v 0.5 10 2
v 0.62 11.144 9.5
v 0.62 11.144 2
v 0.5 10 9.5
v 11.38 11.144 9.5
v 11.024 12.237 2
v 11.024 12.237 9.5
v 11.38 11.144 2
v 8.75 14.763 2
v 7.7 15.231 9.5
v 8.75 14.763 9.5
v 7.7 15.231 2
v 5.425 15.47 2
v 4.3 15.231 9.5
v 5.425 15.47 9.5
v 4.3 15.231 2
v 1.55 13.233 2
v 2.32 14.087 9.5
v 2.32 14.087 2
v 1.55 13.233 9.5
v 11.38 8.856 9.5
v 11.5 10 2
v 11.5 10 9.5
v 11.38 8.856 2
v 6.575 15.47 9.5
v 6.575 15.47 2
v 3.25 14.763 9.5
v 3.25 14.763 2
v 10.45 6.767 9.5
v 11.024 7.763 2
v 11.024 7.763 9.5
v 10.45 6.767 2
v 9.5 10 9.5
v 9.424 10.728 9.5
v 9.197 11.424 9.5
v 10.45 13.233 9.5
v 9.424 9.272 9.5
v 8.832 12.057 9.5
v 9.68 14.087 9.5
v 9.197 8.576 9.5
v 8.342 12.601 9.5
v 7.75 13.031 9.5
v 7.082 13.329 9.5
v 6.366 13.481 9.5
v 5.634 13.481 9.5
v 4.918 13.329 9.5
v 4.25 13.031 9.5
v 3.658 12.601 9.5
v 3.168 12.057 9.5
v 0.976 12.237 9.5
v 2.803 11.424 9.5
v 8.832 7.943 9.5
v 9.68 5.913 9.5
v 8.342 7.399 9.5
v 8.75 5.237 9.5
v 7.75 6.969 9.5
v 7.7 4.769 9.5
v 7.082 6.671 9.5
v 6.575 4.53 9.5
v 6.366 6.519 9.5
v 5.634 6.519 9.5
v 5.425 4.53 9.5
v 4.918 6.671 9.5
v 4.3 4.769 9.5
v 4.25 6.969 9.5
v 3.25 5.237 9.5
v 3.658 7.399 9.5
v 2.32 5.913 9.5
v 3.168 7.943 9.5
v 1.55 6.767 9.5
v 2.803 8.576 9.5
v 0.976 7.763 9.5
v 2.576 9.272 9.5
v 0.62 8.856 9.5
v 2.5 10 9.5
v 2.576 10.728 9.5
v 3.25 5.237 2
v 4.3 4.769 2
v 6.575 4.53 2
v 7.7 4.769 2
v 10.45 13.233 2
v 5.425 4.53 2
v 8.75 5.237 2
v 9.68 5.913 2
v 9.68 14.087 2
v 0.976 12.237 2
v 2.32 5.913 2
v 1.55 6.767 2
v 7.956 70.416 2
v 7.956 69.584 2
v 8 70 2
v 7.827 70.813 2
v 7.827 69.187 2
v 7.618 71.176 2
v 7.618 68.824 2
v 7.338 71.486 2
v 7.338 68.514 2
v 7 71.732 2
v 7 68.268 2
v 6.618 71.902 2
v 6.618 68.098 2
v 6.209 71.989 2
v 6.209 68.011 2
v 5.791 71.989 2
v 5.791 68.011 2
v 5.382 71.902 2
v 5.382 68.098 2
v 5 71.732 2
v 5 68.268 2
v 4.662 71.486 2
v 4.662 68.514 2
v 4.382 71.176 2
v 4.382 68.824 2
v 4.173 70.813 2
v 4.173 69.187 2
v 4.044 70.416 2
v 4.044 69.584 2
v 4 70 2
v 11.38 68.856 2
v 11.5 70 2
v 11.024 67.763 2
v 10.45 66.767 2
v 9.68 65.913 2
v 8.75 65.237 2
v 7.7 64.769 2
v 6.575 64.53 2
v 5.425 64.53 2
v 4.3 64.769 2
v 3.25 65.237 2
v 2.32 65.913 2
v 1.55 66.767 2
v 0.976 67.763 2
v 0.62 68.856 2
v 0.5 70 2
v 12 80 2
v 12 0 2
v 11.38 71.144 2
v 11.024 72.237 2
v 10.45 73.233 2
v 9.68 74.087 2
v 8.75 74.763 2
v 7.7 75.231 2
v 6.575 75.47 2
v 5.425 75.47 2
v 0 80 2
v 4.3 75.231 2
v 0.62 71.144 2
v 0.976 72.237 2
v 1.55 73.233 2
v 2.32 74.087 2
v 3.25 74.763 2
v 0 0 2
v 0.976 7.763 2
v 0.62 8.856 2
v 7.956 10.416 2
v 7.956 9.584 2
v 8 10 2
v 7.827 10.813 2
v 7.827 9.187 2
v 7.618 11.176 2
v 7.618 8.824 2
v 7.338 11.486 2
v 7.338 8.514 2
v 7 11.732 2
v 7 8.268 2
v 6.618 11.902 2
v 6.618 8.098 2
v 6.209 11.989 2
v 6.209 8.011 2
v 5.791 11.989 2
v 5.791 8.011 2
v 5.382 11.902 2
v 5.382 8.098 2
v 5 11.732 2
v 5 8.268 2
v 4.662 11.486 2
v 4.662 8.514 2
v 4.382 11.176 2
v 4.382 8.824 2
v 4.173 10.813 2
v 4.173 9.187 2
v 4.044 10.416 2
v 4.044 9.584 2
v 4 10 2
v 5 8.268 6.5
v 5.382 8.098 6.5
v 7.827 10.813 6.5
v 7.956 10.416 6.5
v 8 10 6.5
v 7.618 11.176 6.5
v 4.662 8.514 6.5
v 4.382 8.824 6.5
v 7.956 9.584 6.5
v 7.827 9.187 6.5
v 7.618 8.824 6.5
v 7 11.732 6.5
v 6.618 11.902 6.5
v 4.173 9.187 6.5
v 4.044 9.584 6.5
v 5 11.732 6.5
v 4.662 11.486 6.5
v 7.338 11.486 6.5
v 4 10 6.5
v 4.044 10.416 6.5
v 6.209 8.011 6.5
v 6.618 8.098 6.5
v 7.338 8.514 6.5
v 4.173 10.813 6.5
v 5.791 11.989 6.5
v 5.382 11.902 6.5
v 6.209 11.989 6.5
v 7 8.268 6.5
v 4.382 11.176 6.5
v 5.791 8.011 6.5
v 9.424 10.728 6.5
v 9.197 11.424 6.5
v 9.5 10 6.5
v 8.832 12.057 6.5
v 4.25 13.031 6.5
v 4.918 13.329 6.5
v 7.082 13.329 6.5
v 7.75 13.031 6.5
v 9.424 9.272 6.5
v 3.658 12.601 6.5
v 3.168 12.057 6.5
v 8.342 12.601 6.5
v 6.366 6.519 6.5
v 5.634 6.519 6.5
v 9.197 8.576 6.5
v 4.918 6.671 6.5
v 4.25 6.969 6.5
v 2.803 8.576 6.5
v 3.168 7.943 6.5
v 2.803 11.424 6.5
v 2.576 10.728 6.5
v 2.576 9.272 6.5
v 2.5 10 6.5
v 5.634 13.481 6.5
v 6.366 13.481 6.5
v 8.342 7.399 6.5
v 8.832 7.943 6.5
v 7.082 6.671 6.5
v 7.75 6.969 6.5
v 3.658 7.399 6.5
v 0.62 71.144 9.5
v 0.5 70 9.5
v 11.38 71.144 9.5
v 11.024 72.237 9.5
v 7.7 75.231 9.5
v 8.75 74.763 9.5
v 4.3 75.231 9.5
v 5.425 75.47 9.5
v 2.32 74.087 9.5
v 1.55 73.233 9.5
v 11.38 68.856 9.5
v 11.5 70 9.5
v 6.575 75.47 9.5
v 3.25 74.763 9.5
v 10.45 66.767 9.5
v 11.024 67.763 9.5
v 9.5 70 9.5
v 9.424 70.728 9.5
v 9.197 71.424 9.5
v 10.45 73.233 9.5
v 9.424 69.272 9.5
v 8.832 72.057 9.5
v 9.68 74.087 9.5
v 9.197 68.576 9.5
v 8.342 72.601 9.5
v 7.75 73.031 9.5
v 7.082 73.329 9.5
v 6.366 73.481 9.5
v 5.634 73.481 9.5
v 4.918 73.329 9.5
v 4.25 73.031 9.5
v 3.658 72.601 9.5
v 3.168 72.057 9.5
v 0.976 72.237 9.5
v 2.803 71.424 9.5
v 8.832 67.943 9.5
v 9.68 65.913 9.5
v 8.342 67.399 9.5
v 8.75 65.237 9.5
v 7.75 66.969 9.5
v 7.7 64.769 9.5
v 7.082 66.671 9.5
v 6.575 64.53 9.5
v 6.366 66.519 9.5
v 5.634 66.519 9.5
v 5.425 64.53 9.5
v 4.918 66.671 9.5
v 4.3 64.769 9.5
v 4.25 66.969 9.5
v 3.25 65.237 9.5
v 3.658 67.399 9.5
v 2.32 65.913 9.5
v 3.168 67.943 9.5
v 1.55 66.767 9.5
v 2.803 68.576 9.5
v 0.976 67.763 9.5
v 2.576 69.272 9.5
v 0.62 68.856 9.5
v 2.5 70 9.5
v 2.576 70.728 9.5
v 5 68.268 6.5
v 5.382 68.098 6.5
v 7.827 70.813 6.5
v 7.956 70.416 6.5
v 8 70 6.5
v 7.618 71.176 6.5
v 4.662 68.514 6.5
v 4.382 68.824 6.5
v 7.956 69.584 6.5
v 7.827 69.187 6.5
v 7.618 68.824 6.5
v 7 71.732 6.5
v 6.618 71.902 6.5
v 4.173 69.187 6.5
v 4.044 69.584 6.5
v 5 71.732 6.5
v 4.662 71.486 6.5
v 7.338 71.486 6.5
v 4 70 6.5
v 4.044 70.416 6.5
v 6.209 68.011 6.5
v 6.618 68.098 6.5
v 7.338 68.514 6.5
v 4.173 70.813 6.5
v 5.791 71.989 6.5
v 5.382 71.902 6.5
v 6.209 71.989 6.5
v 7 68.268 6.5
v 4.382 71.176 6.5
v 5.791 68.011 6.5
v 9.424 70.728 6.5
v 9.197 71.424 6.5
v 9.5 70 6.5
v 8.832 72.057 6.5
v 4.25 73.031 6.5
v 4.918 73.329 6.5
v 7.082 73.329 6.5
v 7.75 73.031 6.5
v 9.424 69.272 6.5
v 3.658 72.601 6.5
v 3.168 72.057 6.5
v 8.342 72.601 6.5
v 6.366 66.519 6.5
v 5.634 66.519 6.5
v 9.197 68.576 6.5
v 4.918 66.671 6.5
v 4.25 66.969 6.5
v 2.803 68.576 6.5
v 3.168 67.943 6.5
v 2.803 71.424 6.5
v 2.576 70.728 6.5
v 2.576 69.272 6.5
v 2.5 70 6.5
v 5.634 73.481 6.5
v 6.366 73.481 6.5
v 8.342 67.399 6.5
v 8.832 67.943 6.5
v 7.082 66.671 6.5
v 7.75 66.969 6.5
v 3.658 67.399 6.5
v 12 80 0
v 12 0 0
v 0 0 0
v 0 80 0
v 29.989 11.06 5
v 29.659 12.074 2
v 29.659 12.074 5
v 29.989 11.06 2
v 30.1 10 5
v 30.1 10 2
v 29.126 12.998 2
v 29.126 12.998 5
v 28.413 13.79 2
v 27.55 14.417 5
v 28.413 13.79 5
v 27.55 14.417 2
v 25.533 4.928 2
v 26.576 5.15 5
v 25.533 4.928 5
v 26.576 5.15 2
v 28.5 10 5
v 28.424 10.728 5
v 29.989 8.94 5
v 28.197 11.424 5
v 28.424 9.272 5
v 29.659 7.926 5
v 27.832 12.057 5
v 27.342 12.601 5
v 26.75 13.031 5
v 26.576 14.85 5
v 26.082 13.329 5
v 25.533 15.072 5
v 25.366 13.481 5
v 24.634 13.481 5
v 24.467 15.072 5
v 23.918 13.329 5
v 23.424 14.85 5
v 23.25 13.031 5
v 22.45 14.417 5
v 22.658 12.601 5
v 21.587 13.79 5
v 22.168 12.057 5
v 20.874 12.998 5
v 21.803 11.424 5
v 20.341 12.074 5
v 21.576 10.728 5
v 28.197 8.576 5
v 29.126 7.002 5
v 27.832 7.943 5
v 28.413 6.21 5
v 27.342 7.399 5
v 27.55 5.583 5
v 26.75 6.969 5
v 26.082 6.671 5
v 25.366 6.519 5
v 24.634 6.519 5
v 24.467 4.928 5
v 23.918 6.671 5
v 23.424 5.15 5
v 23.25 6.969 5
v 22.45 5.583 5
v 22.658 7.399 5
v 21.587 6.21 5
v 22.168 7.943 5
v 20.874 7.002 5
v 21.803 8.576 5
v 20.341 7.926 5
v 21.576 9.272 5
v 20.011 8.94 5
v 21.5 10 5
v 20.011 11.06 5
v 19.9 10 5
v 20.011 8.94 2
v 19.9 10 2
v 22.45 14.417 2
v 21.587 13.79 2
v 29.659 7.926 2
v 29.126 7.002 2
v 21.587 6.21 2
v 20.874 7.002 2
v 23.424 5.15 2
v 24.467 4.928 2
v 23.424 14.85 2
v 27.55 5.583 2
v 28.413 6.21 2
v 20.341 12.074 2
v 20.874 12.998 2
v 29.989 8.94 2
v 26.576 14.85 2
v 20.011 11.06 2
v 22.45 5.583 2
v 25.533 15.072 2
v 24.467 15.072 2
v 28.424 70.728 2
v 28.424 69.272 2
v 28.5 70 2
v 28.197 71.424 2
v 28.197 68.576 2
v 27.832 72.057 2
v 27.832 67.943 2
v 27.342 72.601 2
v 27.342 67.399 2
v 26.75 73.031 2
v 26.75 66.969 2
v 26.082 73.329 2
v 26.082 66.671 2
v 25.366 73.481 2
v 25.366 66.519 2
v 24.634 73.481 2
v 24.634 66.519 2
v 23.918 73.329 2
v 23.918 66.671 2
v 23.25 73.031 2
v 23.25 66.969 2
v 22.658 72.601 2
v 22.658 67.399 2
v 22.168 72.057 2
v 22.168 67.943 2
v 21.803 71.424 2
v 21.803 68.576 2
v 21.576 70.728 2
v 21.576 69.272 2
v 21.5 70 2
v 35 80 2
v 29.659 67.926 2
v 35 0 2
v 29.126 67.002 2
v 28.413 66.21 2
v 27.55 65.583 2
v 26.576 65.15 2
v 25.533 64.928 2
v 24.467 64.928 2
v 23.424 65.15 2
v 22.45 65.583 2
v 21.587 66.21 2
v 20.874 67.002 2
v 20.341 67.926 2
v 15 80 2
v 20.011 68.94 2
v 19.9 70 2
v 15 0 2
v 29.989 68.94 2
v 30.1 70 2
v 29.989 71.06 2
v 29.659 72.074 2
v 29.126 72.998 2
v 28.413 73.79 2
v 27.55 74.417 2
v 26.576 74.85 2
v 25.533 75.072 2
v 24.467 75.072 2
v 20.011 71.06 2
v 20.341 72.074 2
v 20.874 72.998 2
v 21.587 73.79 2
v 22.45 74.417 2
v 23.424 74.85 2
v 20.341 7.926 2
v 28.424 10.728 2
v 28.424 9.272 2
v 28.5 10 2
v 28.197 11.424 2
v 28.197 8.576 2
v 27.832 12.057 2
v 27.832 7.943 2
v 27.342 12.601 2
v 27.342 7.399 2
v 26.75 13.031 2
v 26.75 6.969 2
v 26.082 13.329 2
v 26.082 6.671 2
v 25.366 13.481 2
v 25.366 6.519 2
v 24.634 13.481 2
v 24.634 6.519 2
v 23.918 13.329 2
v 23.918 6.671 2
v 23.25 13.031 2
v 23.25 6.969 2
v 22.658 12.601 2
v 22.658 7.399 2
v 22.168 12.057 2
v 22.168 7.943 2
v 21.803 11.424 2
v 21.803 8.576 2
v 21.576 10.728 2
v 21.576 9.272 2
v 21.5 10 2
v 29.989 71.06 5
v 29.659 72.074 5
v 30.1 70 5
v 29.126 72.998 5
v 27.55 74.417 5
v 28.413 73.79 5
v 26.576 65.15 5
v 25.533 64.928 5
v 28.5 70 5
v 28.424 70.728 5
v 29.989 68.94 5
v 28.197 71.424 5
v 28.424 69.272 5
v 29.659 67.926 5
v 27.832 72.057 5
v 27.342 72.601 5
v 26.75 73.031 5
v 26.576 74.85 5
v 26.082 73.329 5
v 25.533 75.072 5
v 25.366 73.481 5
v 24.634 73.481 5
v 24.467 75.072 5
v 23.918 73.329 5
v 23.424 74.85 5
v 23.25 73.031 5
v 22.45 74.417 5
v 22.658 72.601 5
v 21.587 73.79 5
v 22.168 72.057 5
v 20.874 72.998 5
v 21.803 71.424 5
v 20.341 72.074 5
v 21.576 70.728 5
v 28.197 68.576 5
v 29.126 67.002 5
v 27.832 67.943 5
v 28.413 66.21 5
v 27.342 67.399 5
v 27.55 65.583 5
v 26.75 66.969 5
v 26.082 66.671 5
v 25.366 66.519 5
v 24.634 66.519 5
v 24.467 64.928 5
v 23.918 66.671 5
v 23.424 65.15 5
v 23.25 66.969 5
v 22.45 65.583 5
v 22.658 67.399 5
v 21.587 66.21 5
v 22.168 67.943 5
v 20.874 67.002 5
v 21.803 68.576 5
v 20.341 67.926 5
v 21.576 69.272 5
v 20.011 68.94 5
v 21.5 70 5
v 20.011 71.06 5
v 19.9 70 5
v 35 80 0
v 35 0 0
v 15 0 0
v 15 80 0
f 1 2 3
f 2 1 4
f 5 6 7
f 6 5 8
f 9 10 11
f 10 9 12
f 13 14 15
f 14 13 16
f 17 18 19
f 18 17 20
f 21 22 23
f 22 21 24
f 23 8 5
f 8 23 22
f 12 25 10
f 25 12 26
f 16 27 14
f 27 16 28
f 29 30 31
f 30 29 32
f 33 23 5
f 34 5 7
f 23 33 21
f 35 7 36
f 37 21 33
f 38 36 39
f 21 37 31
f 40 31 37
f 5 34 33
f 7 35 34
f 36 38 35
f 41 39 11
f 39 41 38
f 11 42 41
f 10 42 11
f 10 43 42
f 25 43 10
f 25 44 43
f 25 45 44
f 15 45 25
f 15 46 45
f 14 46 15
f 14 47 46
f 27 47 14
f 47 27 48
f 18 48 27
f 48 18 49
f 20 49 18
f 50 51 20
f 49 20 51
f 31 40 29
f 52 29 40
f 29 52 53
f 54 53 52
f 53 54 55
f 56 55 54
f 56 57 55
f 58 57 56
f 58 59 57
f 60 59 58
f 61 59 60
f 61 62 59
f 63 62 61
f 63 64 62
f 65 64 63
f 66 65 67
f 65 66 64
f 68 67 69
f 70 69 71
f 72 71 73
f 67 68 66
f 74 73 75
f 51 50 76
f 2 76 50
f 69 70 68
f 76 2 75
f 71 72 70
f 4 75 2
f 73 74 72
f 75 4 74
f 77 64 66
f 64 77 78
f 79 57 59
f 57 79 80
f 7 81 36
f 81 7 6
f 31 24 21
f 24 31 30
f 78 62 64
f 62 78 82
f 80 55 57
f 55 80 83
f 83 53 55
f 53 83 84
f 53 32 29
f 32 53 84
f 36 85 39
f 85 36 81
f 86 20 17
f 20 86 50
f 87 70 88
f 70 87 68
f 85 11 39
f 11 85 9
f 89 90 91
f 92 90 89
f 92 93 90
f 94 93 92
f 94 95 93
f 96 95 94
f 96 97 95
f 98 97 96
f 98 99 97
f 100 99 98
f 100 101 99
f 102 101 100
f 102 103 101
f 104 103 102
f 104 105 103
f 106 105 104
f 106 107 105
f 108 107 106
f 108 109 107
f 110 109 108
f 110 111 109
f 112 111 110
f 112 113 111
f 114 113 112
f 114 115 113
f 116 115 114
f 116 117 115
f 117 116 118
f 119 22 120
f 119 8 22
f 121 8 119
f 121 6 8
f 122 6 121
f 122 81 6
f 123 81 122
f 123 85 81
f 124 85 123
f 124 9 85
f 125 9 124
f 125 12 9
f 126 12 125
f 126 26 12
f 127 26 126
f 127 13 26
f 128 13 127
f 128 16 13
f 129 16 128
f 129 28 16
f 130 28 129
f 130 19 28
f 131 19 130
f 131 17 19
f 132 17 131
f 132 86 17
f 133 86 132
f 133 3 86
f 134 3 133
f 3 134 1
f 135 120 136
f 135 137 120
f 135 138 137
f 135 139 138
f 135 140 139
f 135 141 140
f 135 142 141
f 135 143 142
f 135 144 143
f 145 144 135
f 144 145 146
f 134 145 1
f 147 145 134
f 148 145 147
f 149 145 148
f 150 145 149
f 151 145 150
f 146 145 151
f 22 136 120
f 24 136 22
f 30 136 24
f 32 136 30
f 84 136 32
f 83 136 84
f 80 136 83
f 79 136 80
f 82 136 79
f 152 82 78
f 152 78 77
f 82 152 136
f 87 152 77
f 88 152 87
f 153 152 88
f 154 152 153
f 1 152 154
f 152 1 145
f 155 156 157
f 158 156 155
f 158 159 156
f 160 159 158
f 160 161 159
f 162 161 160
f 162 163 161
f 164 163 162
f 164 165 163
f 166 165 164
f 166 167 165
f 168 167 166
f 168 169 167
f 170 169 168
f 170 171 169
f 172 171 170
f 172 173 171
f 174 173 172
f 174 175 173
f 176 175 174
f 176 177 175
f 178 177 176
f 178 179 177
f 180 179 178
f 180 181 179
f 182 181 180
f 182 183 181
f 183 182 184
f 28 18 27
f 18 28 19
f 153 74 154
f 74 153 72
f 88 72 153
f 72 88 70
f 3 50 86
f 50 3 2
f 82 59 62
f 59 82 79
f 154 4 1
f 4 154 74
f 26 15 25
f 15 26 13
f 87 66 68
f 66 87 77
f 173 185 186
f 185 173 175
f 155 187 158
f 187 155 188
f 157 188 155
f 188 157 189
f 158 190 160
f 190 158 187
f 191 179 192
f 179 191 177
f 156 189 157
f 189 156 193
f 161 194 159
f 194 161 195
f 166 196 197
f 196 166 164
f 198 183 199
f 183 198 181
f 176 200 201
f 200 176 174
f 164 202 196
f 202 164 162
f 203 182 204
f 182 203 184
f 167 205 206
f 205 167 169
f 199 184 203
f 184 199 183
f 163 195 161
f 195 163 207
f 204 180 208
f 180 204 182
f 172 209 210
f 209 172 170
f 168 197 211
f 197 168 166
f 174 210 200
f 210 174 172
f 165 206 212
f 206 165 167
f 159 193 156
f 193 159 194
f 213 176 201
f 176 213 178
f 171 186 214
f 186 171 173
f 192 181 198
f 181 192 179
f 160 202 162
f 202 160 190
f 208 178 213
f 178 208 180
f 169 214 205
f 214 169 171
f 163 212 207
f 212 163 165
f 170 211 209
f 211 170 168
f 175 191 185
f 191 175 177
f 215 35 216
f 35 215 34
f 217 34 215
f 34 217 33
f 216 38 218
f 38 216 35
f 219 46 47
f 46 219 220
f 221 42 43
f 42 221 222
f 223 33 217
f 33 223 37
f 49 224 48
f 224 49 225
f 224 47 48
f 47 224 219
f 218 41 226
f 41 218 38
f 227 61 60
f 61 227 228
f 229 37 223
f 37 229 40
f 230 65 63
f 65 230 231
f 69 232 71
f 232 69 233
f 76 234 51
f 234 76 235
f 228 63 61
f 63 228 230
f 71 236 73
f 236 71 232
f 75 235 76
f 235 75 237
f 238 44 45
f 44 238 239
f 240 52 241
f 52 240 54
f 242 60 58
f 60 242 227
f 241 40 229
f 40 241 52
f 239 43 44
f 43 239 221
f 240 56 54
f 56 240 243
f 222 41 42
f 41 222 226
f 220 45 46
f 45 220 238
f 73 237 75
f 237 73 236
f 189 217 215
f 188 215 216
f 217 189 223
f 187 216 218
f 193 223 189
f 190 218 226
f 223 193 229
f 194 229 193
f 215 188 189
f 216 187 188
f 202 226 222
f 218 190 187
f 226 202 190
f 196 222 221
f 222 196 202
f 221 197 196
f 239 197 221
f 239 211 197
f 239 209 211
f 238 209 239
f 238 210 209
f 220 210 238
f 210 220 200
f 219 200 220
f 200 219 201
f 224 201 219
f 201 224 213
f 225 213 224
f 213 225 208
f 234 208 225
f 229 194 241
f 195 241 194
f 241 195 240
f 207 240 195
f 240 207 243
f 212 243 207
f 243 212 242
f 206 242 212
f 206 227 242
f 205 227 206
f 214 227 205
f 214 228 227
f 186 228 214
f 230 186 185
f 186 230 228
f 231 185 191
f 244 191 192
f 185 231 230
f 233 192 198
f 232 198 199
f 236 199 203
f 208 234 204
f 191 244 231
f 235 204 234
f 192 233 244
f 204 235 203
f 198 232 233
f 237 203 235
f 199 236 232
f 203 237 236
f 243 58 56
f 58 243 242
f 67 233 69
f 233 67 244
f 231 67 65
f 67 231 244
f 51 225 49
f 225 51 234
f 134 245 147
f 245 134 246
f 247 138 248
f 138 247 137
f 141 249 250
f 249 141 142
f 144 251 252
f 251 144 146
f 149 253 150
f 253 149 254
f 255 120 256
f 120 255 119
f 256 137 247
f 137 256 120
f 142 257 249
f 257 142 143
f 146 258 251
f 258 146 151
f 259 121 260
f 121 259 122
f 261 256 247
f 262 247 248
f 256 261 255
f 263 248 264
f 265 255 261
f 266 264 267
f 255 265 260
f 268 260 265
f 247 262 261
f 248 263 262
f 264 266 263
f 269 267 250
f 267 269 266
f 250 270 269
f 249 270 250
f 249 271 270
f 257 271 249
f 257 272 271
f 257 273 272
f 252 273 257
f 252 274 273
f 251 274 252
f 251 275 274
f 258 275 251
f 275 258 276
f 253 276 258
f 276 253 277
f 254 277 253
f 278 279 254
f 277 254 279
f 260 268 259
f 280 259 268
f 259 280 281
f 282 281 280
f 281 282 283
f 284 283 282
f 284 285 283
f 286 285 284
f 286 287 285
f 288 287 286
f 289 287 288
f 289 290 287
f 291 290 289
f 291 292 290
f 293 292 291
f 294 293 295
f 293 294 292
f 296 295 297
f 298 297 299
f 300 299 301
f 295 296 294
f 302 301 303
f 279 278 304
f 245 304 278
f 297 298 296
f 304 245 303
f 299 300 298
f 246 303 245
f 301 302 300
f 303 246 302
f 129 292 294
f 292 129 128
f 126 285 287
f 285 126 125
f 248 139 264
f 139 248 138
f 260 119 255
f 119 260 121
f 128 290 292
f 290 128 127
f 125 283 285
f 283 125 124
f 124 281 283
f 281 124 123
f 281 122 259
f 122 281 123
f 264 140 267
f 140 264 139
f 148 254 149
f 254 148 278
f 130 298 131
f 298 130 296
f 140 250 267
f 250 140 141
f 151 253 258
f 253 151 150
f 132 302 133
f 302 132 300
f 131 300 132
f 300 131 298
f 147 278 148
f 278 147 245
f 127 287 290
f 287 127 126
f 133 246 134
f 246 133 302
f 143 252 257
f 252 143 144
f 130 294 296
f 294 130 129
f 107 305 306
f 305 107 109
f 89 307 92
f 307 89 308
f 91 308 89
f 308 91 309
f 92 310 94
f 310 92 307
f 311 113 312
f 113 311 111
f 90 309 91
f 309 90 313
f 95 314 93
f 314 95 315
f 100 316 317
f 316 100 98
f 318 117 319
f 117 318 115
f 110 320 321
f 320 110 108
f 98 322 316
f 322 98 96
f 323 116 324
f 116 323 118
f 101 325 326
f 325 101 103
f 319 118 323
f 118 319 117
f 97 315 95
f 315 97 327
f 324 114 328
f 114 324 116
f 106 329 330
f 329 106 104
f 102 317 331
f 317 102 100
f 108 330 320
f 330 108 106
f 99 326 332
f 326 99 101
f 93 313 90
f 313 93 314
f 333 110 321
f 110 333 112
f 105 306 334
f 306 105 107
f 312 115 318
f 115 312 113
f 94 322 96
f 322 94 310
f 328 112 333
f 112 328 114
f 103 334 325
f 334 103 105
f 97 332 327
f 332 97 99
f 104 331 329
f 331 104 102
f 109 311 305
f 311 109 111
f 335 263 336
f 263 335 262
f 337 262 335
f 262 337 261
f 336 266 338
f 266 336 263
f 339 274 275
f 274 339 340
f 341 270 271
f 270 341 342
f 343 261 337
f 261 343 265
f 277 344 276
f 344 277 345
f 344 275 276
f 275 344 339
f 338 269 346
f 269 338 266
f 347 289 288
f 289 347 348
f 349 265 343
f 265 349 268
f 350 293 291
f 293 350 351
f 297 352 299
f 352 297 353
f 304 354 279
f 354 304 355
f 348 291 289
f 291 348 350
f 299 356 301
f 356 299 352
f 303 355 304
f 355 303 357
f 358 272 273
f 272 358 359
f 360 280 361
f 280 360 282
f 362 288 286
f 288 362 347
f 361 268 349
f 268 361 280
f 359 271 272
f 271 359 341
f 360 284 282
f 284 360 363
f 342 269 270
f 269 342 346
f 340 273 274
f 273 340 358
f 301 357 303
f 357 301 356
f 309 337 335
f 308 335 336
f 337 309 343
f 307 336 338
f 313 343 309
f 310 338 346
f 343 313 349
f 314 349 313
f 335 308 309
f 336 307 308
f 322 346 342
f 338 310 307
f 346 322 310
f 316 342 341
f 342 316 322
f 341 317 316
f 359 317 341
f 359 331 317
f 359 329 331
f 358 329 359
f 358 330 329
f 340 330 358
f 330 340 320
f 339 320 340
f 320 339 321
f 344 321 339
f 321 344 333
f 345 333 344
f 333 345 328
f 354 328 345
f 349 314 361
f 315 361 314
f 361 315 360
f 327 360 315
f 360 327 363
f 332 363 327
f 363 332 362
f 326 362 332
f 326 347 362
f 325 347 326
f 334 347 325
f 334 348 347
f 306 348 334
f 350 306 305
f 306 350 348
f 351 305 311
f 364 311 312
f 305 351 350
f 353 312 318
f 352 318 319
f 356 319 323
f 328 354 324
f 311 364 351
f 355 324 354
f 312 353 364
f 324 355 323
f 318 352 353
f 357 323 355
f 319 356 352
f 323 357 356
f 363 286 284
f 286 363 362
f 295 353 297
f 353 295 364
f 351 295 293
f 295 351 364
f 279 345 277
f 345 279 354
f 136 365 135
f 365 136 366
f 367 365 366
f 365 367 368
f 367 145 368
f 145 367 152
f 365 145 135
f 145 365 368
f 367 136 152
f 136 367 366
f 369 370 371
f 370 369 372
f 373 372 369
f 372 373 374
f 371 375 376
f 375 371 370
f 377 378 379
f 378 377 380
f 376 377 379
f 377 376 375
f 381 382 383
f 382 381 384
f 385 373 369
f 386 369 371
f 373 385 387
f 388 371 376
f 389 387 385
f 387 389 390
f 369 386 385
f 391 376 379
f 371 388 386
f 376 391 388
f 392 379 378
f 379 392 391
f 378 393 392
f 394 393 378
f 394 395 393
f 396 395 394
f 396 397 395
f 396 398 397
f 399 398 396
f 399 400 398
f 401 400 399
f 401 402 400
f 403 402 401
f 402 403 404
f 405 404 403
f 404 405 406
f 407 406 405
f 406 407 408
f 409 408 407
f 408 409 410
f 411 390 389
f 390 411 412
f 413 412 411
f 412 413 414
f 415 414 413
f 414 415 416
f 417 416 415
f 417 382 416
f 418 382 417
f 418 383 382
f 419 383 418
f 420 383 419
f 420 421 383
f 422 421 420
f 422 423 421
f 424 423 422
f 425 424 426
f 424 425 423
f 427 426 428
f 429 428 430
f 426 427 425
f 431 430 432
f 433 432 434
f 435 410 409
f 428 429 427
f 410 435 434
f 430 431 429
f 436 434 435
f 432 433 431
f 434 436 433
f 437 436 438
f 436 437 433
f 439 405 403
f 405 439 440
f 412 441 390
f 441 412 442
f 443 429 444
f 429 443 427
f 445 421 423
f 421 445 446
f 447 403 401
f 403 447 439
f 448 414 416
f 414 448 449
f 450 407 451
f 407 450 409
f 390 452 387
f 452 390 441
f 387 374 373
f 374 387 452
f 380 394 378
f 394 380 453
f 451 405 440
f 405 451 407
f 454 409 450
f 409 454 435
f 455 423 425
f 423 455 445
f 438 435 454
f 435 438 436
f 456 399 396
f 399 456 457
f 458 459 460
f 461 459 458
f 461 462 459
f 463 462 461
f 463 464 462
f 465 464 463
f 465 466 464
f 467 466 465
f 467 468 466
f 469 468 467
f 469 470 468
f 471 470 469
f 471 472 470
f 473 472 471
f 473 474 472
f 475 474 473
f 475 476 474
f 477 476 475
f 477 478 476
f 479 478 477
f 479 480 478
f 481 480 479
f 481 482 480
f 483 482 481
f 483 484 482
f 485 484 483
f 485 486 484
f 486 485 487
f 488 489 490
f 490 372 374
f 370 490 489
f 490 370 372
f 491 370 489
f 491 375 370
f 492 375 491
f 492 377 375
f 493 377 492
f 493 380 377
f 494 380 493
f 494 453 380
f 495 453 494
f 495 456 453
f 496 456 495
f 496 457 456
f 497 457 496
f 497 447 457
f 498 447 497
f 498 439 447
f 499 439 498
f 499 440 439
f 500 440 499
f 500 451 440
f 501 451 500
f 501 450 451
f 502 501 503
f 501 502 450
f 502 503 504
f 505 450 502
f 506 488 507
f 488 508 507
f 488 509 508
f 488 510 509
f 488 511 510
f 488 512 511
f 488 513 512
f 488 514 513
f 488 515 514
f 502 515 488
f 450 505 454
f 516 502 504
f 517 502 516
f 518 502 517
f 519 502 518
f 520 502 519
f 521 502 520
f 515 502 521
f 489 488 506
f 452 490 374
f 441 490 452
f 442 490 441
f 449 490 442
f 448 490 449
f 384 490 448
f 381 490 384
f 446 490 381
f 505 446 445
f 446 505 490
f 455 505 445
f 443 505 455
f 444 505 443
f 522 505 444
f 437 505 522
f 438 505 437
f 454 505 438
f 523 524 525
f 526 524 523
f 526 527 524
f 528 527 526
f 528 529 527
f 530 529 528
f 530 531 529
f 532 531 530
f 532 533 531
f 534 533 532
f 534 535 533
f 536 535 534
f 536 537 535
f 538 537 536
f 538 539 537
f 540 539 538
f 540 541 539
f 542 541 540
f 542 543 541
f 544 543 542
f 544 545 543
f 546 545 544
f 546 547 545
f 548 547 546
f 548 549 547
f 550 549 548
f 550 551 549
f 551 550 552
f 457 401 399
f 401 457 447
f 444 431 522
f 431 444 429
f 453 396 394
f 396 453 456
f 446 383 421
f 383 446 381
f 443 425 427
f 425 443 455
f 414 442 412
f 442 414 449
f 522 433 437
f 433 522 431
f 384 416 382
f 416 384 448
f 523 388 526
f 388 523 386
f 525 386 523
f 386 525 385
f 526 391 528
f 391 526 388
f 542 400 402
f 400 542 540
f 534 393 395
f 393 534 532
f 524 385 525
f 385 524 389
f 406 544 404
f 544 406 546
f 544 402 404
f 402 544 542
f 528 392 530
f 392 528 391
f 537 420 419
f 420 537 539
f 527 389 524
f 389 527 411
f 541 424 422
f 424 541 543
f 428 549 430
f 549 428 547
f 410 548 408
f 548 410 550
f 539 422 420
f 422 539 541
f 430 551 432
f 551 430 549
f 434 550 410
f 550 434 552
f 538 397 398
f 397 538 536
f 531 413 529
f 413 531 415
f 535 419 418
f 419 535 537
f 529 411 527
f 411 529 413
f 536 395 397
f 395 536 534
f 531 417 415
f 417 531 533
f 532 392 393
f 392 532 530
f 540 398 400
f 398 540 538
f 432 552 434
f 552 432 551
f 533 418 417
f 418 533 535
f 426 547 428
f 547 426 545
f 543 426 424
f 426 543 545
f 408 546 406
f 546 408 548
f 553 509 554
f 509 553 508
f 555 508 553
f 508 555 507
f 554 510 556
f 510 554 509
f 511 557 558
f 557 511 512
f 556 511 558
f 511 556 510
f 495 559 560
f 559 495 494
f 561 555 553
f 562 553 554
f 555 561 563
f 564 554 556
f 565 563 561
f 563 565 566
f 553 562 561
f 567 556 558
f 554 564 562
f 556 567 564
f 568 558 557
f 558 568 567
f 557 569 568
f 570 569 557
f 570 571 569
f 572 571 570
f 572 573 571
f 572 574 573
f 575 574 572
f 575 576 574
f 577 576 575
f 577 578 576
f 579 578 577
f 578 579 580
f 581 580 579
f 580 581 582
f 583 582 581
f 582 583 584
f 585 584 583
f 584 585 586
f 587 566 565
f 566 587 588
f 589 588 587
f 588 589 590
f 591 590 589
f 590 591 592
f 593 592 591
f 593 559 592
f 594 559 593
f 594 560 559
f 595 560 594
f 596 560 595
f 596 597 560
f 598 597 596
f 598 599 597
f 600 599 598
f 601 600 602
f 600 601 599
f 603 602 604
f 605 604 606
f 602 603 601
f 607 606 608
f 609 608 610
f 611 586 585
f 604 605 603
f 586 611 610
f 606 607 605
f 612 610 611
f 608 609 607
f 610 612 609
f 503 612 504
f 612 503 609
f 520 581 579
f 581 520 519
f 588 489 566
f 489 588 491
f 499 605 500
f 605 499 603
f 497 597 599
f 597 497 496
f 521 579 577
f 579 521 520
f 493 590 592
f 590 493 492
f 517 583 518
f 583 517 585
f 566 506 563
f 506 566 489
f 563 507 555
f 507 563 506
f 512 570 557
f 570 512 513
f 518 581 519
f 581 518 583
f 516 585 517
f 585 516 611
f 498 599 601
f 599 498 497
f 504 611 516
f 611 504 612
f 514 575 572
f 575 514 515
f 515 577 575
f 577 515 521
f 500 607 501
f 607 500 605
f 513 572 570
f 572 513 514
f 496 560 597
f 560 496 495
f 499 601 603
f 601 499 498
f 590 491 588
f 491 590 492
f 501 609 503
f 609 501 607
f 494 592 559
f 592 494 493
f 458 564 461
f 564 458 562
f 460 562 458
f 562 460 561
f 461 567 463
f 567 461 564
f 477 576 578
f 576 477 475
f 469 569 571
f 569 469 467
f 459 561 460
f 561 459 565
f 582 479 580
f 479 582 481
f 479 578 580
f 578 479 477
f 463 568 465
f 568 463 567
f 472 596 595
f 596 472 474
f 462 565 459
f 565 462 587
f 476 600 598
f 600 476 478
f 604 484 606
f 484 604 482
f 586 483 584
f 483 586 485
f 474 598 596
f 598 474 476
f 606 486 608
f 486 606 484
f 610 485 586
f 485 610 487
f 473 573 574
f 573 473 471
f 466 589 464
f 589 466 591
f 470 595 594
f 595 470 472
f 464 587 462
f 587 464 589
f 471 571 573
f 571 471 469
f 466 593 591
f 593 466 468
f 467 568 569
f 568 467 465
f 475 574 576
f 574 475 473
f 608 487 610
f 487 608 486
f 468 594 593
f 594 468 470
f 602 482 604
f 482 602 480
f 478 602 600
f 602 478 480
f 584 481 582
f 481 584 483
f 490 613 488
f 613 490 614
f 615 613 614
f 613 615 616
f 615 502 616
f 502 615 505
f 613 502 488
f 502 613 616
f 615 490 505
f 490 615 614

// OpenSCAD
$fn=30;

module adj_stand_top() {
    bolt_d = 4;
    bolt_h = 7;
    w = 12;
    d = 80;
    h = 2;
    h2 = 5 + 2.5;
    cube([w, d, h]);
    translate([w/2, 10, h]) {
        nut_cutout();
    }
    translate([w/2, d-10, h]) {
        nut_cutout();
    }
    module nut_cutout() {
        difference() {
            cylinder(h = h2, d = bolt_h+4);
            cylinder(h = h2+.1, d = bolt_d);
            translate([0, 0, h2-3])
                cylinder(h = 3+.1, d = bolt_h);
        }
    }
}

module adj_stand_base() {
    bolt_h = 7;
    w = 20;
    d = 80;
    h = 2;
    h2 = 3;
    cube([w, d, h]);
    translate([w/2, 10, h]) {
        socket();
    }
    translate([w/2, d-10, h]) {
        socket();
    }
    module socket() {
        difference() {
            cylinder(h = h2, d = bolt_h+3.2);
            cylinder(h = h2+.1, d = bolt_h);
        }
    }
}

adj_stand_top();
translate([15, 0, 0])
    adj_stand_base();
